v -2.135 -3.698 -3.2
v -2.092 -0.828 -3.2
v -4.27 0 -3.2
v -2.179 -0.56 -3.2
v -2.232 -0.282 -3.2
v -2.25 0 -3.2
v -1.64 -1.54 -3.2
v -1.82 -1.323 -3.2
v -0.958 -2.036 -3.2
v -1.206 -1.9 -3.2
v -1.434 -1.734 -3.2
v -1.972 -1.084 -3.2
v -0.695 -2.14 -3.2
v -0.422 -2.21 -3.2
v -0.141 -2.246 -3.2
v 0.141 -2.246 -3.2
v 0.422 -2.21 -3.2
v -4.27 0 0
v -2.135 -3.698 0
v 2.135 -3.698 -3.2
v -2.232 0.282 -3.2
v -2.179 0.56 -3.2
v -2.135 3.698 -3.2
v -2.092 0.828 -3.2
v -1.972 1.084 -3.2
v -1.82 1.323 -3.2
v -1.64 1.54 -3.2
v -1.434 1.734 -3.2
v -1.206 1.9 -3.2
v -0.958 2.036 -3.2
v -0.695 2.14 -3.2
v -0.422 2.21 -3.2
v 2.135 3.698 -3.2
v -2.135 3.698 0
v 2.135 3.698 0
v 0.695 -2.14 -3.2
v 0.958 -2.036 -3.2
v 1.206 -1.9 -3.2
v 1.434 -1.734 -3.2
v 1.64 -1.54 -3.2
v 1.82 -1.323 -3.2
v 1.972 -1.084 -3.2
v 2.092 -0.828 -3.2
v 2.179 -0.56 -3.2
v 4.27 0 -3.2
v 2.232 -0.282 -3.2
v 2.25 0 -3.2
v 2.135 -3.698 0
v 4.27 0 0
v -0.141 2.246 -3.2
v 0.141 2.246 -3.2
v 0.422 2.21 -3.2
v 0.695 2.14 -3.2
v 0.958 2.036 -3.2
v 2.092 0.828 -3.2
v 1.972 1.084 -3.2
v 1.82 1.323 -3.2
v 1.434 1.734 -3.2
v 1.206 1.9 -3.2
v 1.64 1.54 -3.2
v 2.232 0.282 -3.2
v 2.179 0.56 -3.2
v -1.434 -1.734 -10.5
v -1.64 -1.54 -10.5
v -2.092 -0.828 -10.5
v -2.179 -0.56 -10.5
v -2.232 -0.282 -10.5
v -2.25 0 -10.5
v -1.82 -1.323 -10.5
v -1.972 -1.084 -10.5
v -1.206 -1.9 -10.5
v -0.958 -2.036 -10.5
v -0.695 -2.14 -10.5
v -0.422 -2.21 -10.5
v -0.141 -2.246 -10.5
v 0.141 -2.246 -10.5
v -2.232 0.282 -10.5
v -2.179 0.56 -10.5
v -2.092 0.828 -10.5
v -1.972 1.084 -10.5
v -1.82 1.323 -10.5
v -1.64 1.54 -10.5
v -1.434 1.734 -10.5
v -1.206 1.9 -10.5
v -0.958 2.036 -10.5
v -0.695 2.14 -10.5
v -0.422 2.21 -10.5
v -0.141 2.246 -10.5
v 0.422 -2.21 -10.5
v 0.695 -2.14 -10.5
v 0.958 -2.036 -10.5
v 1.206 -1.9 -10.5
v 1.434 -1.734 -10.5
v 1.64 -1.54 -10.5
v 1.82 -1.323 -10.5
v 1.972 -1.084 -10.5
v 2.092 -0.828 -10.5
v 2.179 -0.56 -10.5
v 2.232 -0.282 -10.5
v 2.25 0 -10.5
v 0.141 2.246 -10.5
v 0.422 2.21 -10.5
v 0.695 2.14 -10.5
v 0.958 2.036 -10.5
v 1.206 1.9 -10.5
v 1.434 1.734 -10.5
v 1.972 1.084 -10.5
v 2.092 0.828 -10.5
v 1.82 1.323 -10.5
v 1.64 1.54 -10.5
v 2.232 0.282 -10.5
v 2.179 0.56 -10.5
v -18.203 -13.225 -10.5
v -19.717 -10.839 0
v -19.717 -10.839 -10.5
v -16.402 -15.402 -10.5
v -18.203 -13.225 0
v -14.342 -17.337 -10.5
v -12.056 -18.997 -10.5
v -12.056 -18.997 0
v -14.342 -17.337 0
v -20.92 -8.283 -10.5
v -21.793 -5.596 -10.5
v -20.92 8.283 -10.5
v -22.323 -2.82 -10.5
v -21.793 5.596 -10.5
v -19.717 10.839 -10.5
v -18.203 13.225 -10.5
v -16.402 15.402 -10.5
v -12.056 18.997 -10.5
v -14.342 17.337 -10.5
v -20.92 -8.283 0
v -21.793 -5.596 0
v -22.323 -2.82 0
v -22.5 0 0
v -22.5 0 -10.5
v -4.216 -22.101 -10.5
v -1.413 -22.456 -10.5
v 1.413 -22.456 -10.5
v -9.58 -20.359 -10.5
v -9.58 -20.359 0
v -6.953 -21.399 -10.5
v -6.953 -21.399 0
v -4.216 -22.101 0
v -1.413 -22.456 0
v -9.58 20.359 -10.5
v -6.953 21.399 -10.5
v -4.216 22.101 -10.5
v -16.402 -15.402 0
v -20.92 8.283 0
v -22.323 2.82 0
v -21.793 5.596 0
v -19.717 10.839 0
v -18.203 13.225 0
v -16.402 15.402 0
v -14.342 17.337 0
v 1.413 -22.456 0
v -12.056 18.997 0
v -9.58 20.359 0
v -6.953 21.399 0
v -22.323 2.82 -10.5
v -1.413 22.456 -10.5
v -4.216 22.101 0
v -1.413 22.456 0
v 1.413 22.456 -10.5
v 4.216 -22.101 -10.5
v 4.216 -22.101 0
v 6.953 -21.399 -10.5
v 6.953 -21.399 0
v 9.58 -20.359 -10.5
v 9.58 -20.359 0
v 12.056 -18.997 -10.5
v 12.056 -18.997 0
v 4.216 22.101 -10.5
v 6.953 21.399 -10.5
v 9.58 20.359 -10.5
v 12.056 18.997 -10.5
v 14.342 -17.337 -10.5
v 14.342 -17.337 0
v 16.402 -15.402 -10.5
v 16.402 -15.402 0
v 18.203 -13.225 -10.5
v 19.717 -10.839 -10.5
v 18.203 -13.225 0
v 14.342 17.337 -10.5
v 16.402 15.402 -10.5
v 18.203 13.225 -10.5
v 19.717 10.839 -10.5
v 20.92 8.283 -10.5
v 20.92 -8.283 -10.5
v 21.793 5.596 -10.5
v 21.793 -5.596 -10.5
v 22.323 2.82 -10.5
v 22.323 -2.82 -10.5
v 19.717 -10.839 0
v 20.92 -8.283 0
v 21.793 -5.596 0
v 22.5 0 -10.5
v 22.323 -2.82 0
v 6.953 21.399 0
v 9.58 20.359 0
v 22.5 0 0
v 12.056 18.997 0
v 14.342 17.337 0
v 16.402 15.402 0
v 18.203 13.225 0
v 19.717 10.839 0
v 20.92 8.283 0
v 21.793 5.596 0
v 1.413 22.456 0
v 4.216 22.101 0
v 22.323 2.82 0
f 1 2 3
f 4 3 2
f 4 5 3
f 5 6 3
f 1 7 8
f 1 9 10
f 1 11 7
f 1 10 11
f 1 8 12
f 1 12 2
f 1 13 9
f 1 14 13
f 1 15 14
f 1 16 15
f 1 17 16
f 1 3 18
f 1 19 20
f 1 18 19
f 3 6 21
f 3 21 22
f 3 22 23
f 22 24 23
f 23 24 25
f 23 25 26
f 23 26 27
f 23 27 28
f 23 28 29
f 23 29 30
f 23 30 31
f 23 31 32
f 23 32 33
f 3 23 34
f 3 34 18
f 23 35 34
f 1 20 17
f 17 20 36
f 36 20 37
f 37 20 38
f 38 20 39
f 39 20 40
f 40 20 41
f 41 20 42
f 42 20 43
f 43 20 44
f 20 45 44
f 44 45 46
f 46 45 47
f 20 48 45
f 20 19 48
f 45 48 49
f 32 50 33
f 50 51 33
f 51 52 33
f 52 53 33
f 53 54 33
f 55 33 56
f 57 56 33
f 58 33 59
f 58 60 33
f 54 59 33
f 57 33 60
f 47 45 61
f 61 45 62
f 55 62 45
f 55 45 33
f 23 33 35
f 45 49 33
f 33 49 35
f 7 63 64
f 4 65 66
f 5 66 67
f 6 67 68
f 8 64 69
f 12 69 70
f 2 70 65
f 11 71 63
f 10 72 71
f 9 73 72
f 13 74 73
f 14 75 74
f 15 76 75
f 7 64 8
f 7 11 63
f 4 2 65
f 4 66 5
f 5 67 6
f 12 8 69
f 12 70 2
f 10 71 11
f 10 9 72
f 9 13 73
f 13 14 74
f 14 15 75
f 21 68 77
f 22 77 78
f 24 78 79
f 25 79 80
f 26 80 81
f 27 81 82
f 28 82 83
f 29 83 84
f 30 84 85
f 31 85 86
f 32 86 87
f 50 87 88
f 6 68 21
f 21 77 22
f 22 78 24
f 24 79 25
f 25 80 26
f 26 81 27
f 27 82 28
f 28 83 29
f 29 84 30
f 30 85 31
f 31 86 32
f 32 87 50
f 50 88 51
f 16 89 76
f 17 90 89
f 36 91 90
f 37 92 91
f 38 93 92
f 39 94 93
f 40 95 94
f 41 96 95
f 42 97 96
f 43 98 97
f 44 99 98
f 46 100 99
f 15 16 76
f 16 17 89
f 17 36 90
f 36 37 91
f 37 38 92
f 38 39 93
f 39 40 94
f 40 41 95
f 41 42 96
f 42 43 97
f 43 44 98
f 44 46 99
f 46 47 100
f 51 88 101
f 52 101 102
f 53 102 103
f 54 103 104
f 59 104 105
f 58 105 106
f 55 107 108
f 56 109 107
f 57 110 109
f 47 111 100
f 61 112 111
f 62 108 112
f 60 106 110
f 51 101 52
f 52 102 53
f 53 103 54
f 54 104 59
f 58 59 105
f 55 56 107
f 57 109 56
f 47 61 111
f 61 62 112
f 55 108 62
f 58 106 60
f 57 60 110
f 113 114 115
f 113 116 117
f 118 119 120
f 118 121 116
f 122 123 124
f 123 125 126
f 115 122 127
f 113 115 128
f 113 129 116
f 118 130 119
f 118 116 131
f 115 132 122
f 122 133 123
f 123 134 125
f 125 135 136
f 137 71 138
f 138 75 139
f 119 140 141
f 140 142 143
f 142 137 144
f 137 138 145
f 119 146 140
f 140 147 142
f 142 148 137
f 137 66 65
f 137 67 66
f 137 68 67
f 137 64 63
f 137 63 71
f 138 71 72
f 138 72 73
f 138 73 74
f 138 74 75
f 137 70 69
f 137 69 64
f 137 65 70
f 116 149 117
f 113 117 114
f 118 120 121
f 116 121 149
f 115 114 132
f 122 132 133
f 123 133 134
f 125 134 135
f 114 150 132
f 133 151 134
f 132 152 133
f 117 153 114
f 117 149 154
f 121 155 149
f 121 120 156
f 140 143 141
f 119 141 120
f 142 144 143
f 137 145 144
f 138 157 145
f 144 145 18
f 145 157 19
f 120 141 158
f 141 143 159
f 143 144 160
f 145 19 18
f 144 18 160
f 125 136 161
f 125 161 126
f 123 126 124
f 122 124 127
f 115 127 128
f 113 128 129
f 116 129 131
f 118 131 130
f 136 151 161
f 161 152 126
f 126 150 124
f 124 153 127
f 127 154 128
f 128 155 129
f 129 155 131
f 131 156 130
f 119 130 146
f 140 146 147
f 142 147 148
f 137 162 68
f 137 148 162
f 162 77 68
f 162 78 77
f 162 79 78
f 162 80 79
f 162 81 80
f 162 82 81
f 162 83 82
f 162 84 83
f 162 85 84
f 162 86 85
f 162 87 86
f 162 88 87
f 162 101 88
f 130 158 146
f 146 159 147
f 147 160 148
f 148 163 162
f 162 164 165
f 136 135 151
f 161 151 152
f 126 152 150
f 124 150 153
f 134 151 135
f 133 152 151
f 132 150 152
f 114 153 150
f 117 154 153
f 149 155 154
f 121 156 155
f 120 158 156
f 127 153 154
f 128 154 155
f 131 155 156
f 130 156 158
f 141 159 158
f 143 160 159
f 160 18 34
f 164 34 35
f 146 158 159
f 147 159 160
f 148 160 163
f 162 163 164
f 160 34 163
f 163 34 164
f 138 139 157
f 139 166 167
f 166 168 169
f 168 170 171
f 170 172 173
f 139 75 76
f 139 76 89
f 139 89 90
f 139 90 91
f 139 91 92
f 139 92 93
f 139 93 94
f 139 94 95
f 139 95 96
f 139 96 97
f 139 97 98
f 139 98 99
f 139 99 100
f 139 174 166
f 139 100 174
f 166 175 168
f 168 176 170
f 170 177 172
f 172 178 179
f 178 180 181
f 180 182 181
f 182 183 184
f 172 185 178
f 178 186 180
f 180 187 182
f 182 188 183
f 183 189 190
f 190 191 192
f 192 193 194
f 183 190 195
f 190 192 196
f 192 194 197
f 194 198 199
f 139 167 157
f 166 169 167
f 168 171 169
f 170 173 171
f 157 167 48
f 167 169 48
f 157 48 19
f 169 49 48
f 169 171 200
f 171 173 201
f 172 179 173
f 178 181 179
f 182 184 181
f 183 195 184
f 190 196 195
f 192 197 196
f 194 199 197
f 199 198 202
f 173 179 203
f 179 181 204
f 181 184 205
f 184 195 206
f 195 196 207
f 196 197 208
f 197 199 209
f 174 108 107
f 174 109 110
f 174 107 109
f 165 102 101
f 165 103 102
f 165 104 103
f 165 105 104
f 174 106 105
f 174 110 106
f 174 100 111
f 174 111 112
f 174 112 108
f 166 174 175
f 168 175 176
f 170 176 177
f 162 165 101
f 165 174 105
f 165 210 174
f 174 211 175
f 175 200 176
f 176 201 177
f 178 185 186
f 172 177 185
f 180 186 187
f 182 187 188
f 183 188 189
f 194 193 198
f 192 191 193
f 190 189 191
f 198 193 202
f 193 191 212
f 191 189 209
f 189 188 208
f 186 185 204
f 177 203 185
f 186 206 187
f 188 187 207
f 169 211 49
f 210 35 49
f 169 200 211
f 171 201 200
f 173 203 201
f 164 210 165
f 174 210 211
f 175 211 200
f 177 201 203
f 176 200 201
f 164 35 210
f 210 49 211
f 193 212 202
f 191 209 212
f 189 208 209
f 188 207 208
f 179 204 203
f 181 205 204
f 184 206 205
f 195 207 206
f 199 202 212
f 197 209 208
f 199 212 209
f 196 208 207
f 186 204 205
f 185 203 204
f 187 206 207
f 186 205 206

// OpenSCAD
$fn = 50;

difference() {
	union() {
		translate(v = [0, 0, -10.5]) {
			cylinder(h = 10.5, r = 22.5);
		}
	}
	union() {
		translate(v = [0, 0, 0]) {
			rotate(a = [0, 0, 0]) {
				difference() {
					union() {
						translate(v = [0, 0, -3.2]) {
							linear_extrude(height = 3.2) {
								polygon(points = [[4.2698, 0.0], [2.1349000000000005, 3.697755269078796], [-2.134899999999999, 3.6977552690787965], [-4.2698, 5.228996902999369e-16], [-2.134900000000002, -3.6977552690787956], [2.1348999999999974, -3.697755269078798]]);
							}
						}
					}
					union();
				}
			}
		}
		#translate(v = [0, 0, -100.0]) {
			cylinder(h = 200, r = 2.25);
		}
	}
}
